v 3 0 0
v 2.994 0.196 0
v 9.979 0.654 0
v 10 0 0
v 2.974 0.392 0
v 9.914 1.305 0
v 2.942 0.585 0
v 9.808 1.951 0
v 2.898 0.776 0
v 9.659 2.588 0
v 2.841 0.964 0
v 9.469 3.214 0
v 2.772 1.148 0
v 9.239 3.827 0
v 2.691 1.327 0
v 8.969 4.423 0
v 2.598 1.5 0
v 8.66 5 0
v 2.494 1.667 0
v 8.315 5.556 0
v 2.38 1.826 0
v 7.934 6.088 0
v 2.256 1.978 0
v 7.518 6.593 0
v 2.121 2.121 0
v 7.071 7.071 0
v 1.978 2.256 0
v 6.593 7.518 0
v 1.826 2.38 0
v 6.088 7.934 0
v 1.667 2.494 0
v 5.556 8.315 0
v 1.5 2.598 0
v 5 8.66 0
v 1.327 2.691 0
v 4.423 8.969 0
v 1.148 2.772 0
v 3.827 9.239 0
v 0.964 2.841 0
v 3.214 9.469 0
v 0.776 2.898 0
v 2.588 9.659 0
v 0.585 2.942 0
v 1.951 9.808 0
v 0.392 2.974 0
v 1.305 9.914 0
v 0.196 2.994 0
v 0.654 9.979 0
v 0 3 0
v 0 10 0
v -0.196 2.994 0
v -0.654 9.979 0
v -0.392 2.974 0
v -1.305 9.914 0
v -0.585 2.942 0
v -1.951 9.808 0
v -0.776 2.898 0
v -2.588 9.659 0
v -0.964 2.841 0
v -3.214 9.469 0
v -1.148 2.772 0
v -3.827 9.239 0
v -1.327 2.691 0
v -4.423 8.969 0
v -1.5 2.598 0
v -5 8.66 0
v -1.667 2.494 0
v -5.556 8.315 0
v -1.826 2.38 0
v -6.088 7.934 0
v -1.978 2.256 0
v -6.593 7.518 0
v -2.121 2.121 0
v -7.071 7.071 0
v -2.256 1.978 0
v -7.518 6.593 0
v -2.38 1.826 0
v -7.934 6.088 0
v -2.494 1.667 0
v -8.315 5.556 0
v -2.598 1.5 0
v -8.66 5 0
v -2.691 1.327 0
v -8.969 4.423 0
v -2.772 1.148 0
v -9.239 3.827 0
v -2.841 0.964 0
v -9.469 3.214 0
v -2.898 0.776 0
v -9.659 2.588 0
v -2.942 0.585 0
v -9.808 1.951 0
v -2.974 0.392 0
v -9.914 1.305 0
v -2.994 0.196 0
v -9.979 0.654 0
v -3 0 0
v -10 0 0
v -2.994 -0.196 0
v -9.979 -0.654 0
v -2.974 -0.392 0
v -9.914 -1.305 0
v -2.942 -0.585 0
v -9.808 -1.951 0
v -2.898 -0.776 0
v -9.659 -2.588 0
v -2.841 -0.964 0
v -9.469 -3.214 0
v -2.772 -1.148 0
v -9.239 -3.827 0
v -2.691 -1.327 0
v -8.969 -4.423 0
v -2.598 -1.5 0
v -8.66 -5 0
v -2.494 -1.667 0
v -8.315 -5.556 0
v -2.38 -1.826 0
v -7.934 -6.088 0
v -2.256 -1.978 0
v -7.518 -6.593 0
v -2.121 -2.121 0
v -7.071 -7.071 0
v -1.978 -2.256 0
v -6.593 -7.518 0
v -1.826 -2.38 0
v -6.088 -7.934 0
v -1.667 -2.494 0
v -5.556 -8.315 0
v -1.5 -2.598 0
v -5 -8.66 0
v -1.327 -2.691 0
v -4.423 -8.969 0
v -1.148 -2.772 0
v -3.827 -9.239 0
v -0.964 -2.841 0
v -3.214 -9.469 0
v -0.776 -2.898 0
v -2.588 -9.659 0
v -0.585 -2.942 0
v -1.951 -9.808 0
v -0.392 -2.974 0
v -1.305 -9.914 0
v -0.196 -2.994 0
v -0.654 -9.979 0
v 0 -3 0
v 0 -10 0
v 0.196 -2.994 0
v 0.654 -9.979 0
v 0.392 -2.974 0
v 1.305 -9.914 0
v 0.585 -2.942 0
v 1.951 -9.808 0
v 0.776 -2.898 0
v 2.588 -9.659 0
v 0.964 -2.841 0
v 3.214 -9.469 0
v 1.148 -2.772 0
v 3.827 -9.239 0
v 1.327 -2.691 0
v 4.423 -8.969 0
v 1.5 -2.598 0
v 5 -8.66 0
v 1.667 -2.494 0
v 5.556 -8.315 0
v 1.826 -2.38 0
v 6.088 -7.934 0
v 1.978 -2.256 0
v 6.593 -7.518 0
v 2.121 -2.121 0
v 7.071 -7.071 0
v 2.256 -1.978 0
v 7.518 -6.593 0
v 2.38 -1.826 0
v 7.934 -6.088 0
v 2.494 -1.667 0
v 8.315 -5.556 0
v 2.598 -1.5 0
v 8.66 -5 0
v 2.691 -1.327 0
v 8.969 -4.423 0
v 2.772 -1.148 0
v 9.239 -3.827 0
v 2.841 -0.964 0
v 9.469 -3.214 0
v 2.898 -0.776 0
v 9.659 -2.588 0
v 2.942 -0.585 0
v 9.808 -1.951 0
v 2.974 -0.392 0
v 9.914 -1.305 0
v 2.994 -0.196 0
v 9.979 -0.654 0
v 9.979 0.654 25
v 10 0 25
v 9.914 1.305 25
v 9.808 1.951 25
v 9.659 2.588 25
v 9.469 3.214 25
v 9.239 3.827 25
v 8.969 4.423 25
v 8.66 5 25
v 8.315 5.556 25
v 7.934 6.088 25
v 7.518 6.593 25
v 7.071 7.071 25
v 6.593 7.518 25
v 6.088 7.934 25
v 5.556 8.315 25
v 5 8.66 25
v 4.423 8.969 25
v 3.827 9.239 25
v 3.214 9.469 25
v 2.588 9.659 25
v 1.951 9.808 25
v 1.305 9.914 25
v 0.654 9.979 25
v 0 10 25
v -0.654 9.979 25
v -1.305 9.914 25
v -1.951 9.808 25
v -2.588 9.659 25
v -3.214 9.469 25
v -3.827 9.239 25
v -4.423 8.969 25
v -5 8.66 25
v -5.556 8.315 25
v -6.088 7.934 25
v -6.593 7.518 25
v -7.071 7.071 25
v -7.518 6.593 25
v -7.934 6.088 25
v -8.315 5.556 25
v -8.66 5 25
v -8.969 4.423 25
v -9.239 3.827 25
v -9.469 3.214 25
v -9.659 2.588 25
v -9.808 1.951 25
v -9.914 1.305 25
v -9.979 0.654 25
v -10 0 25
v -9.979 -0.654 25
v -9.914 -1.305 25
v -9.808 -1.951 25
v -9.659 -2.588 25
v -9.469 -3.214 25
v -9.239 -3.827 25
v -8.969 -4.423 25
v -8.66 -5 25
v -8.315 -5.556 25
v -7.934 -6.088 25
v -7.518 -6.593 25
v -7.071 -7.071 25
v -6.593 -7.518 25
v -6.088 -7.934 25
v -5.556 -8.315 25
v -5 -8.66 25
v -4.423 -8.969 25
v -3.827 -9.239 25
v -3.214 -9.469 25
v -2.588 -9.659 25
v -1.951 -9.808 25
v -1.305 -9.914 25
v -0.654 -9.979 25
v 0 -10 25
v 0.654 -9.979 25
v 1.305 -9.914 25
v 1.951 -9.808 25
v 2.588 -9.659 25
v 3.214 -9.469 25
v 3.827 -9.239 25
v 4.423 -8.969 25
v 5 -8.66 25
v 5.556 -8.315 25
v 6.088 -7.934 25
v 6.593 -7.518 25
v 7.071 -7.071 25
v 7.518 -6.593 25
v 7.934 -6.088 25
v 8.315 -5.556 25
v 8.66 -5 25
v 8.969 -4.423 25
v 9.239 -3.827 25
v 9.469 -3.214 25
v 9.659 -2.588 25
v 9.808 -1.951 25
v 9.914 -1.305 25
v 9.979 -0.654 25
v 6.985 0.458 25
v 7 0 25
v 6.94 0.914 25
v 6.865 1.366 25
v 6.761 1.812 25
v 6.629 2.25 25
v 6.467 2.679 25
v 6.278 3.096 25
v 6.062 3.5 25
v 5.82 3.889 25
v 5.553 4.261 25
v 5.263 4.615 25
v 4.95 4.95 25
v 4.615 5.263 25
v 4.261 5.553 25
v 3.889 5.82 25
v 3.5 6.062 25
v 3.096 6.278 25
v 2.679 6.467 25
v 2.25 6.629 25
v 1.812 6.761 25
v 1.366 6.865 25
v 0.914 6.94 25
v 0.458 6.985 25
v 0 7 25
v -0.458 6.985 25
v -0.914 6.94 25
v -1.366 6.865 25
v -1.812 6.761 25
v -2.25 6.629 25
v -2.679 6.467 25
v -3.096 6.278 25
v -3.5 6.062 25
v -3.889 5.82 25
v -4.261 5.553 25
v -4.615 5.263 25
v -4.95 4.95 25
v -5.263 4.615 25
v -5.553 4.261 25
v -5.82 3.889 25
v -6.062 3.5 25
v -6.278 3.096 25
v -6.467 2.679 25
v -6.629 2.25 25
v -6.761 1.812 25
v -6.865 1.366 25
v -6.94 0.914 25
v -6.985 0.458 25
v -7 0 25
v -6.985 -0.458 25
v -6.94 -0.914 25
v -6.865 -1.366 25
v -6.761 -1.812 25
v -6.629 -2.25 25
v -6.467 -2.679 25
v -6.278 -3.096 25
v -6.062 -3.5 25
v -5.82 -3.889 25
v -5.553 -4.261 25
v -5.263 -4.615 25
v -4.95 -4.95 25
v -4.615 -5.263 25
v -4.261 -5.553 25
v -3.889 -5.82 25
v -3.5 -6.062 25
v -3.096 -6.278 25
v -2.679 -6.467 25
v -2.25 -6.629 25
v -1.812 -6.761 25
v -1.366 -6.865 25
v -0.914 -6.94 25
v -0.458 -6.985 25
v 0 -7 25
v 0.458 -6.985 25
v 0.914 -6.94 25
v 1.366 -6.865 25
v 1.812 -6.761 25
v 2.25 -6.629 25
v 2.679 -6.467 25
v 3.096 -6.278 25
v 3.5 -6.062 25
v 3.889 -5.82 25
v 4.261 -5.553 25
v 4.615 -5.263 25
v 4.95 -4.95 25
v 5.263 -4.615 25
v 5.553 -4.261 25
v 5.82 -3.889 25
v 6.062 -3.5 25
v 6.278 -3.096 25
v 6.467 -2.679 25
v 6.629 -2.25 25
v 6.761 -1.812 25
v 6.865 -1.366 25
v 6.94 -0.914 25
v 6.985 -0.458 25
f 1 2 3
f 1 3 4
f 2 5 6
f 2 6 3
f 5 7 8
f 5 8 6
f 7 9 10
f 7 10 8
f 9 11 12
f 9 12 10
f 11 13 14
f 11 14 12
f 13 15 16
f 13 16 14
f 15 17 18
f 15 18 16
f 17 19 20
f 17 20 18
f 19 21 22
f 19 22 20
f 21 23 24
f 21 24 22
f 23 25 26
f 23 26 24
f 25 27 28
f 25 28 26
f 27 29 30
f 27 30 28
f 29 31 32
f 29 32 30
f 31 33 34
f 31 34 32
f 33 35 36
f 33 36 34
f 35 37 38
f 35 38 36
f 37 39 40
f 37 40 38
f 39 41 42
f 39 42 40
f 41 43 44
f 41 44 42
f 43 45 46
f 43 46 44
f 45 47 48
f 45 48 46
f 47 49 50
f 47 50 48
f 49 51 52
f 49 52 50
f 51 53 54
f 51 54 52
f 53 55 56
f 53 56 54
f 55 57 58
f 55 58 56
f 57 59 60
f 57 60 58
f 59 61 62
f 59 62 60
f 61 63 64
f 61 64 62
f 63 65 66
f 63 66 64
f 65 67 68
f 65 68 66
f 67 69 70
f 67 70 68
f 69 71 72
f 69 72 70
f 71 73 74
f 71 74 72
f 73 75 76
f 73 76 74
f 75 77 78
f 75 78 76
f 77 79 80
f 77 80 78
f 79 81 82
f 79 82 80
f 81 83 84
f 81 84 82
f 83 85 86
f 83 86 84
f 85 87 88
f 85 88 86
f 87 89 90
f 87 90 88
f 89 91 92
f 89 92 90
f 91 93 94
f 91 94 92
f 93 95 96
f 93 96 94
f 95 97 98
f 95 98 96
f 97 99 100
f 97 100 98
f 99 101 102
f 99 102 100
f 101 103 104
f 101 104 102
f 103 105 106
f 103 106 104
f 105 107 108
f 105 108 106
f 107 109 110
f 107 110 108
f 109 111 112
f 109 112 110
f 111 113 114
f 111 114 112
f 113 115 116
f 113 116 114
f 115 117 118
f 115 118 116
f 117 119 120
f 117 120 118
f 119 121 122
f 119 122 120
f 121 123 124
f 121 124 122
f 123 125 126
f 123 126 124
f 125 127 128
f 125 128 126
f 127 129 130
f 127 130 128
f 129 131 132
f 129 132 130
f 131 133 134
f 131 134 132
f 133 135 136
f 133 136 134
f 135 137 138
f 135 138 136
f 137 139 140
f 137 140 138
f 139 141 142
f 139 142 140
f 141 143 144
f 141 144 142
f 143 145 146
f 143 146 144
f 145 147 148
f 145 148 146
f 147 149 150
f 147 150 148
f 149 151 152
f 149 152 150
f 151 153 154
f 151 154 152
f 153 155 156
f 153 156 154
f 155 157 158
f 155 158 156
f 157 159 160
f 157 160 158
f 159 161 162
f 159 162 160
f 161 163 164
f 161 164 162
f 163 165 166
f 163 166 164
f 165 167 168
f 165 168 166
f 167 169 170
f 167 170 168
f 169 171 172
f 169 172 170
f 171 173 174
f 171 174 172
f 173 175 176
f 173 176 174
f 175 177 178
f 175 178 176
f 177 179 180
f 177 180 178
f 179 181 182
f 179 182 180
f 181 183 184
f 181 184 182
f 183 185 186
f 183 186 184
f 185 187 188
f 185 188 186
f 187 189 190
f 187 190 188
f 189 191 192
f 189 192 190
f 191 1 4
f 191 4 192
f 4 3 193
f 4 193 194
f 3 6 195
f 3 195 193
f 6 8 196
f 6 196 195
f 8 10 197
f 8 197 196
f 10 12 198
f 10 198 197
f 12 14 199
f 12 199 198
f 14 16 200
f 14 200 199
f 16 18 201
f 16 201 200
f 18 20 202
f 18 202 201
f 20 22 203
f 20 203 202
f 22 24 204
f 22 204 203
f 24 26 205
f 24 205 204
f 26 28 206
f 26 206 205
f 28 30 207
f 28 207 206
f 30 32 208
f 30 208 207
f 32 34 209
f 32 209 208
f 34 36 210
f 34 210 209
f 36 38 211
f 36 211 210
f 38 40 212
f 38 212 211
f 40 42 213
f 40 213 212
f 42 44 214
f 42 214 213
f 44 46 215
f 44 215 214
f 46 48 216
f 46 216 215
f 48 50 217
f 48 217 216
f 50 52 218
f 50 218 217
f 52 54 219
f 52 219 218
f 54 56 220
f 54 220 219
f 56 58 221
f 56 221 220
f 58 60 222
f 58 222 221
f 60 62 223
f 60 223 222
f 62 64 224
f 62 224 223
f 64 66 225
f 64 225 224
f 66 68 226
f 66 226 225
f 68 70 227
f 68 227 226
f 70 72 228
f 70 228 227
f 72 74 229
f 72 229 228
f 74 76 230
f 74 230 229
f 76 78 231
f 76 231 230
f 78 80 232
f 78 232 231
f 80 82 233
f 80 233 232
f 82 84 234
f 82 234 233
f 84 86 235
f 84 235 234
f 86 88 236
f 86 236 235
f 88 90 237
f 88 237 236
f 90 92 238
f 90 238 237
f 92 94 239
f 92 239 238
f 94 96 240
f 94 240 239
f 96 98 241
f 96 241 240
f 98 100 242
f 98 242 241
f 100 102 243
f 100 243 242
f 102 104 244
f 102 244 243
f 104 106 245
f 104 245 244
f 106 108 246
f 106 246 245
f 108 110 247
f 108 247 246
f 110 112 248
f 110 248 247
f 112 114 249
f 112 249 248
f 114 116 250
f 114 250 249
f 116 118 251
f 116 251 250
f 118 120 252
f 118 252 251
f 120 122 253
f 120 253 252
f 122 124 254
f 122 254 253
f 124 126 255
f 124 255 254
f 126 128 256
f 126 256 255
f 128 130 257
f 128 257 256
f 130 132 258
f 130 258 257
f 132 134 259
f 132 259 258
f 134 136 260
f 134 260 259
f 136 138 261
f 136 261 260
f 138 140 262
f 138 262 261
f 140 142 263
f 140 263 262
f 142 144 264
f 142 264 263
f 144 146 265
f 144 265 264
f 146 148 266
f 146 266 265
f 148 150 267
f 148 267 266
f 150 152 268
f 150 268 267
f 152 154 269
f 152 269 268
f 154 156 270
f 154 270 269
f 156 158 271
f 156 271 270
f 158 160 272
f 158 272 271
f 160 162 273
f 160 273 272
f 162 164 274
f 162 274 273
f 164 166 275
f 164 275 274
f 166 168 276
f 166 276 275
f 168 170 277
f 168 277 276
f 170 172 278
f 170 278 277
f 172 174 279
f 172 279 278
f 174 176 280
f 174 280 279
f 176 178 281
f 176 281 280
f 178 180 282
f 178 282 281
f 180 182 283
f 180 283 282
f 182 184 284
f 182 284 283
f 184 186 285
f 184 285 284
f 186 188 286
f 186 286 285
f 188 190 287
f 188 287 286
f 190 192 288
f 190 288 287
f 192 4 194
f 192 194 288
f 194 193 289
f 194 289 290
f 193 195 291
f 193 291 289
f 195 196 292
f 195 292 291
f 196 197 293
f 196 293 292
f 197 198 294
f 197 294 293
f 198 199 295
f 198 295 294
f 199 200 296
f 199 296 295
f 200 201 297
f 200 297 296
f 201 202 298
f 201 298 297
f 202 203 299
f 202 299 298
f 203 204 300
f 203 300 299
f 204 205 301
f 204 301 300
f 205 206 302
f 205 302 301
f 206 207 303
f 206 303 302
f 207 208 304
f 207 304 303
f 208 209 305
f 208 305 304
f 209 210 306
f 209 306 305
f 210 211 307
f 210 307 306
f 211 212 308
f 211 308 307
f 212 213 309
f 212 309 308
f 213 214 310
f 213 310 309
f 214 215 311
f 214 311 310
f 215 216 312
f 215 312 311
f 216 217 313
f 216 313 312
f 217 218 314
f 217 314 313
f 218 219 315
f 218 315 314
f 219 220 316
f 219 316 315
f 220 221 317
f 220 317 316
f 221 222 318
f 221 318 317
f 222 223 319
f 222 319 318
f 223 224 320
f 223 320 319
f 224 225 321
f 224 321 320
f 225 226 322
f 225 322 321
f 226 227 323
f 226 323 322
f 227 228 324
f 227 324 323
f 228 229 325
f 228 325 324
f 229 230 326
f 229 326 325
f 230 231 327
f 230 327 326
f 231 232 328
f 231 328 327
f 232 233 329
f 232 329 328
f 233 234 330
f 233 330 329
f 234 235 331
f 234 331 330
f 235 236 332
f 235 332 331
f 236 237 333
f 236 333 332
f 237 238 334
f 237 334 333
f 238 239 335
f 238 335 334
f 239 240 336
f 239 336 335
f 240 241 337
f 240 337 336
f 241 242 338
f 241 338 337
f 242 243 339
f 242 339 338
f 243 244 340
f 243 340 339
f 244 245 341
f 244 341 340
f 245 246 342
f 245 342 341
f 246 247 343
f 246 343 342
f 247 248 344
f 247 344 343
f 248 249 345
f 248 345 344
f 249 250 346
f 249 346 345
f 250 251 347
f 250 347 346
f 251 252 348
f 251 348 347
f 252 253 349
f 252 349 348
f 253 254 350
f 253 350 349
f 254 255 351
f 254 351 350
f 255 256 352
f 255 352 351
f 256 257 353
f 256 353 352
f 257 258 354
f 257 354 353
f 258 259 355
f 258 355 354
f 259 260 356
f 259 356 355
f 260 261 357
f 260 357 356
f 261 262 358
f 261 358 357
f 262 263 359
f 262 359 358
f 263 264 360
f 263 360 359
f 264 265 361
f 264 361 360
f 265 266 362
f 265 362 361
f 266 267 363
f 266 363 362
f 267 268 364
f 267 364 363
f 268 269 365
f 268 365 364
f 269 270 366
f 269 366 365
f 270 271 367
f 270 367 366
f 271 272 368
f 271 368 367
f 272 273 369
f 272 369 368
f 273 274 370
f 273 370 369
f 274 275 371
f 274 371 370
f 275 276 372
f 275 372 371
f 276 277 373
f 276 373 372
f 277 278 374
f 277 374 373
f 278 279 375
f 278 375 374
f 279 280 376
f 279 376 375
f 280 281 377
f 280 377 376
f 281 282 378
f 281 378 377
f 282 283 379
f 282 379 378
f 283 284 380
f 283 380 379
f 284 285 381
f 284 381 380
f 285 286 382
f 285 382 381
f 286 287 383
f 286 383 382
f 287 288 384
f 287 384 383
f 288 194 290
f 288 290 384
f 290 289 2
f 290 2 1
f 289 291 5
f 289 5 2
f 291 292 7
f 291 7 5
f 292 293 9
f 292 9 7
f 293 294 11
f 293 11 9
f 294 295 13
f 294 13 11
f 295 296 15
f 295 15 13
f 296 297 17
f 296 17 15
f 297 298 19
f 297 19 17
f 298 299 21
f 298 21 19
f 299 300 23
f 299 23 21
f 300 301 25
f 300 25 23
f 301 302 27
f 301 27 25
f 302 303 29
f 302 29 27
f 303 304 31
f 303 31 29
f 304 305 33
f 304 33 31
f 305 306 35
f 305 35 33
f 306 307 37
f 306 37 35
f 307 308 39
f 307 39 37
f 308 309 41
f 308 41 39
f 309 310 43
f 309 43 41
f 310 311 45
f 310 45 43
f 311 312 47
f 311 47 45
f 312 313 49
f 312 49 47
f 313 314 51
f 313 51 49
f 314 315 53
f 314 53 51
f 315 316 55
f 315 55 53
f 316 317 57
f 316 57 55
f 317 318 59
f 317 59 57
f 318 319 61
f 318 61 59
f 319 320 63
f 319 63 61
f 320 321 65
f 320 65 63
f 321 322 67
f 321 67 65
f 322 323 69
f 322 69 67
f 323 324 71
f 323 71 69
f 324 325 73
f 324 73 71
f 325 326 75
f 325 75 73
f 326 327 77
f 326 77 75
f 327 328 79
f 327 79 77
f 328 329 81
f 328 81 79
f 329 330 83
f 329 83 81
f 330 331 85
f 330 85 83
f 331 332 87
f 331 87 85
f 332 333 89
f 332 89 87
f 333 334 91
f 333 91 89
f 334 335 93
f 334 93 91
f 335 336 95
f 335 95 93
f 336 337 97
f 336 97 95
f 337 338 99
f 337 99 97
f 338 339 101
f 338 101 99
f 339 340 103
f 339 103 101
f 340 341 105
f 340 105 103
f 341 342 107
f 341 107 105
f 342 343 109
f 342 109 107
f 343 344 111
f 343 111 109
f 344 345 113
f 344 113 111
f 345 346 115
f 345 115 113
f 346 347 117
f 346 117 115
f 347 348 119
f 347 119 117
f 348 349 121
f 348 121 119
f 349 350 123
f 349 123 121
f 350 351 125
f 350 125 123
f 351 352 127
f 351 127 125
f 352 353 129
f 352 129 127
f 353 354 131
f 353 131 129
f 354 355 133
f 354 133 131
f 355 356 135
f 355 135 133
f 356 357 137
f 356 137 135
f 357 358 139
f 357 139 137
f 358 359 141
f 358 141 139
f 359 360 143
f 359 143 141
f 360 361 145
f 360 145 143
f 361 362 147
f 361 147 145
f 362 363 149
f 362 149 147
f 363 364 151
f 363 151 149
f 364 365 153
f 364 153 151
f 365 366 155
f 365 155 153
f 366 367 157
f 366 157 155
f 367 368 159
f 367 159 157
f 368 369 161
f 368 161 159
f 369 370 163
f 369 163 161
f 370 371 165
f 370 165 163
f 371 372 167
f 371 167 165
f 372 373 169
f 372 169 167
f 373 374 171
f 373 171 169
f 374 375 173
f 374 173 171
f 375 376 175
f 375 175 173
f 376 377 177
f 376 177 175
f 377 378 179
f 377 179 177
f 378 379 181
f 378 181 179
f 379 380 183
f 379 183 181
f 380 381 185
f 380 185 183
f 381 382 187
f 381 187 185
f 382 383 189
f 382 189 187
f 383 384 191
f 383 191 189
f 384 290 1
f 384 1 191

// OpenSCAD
// Original MechIntel educational model. CC0-1.0. Units: mm.
// Not a standardized or load-rated component.
$fn=96;
// Section points: [radius, height], mm. Edit to change the profile.
section=[[3, 0], [10, 0], [10, 25], [7, 25]];
rotate_extrude($fn=96) polygon(points=section);
